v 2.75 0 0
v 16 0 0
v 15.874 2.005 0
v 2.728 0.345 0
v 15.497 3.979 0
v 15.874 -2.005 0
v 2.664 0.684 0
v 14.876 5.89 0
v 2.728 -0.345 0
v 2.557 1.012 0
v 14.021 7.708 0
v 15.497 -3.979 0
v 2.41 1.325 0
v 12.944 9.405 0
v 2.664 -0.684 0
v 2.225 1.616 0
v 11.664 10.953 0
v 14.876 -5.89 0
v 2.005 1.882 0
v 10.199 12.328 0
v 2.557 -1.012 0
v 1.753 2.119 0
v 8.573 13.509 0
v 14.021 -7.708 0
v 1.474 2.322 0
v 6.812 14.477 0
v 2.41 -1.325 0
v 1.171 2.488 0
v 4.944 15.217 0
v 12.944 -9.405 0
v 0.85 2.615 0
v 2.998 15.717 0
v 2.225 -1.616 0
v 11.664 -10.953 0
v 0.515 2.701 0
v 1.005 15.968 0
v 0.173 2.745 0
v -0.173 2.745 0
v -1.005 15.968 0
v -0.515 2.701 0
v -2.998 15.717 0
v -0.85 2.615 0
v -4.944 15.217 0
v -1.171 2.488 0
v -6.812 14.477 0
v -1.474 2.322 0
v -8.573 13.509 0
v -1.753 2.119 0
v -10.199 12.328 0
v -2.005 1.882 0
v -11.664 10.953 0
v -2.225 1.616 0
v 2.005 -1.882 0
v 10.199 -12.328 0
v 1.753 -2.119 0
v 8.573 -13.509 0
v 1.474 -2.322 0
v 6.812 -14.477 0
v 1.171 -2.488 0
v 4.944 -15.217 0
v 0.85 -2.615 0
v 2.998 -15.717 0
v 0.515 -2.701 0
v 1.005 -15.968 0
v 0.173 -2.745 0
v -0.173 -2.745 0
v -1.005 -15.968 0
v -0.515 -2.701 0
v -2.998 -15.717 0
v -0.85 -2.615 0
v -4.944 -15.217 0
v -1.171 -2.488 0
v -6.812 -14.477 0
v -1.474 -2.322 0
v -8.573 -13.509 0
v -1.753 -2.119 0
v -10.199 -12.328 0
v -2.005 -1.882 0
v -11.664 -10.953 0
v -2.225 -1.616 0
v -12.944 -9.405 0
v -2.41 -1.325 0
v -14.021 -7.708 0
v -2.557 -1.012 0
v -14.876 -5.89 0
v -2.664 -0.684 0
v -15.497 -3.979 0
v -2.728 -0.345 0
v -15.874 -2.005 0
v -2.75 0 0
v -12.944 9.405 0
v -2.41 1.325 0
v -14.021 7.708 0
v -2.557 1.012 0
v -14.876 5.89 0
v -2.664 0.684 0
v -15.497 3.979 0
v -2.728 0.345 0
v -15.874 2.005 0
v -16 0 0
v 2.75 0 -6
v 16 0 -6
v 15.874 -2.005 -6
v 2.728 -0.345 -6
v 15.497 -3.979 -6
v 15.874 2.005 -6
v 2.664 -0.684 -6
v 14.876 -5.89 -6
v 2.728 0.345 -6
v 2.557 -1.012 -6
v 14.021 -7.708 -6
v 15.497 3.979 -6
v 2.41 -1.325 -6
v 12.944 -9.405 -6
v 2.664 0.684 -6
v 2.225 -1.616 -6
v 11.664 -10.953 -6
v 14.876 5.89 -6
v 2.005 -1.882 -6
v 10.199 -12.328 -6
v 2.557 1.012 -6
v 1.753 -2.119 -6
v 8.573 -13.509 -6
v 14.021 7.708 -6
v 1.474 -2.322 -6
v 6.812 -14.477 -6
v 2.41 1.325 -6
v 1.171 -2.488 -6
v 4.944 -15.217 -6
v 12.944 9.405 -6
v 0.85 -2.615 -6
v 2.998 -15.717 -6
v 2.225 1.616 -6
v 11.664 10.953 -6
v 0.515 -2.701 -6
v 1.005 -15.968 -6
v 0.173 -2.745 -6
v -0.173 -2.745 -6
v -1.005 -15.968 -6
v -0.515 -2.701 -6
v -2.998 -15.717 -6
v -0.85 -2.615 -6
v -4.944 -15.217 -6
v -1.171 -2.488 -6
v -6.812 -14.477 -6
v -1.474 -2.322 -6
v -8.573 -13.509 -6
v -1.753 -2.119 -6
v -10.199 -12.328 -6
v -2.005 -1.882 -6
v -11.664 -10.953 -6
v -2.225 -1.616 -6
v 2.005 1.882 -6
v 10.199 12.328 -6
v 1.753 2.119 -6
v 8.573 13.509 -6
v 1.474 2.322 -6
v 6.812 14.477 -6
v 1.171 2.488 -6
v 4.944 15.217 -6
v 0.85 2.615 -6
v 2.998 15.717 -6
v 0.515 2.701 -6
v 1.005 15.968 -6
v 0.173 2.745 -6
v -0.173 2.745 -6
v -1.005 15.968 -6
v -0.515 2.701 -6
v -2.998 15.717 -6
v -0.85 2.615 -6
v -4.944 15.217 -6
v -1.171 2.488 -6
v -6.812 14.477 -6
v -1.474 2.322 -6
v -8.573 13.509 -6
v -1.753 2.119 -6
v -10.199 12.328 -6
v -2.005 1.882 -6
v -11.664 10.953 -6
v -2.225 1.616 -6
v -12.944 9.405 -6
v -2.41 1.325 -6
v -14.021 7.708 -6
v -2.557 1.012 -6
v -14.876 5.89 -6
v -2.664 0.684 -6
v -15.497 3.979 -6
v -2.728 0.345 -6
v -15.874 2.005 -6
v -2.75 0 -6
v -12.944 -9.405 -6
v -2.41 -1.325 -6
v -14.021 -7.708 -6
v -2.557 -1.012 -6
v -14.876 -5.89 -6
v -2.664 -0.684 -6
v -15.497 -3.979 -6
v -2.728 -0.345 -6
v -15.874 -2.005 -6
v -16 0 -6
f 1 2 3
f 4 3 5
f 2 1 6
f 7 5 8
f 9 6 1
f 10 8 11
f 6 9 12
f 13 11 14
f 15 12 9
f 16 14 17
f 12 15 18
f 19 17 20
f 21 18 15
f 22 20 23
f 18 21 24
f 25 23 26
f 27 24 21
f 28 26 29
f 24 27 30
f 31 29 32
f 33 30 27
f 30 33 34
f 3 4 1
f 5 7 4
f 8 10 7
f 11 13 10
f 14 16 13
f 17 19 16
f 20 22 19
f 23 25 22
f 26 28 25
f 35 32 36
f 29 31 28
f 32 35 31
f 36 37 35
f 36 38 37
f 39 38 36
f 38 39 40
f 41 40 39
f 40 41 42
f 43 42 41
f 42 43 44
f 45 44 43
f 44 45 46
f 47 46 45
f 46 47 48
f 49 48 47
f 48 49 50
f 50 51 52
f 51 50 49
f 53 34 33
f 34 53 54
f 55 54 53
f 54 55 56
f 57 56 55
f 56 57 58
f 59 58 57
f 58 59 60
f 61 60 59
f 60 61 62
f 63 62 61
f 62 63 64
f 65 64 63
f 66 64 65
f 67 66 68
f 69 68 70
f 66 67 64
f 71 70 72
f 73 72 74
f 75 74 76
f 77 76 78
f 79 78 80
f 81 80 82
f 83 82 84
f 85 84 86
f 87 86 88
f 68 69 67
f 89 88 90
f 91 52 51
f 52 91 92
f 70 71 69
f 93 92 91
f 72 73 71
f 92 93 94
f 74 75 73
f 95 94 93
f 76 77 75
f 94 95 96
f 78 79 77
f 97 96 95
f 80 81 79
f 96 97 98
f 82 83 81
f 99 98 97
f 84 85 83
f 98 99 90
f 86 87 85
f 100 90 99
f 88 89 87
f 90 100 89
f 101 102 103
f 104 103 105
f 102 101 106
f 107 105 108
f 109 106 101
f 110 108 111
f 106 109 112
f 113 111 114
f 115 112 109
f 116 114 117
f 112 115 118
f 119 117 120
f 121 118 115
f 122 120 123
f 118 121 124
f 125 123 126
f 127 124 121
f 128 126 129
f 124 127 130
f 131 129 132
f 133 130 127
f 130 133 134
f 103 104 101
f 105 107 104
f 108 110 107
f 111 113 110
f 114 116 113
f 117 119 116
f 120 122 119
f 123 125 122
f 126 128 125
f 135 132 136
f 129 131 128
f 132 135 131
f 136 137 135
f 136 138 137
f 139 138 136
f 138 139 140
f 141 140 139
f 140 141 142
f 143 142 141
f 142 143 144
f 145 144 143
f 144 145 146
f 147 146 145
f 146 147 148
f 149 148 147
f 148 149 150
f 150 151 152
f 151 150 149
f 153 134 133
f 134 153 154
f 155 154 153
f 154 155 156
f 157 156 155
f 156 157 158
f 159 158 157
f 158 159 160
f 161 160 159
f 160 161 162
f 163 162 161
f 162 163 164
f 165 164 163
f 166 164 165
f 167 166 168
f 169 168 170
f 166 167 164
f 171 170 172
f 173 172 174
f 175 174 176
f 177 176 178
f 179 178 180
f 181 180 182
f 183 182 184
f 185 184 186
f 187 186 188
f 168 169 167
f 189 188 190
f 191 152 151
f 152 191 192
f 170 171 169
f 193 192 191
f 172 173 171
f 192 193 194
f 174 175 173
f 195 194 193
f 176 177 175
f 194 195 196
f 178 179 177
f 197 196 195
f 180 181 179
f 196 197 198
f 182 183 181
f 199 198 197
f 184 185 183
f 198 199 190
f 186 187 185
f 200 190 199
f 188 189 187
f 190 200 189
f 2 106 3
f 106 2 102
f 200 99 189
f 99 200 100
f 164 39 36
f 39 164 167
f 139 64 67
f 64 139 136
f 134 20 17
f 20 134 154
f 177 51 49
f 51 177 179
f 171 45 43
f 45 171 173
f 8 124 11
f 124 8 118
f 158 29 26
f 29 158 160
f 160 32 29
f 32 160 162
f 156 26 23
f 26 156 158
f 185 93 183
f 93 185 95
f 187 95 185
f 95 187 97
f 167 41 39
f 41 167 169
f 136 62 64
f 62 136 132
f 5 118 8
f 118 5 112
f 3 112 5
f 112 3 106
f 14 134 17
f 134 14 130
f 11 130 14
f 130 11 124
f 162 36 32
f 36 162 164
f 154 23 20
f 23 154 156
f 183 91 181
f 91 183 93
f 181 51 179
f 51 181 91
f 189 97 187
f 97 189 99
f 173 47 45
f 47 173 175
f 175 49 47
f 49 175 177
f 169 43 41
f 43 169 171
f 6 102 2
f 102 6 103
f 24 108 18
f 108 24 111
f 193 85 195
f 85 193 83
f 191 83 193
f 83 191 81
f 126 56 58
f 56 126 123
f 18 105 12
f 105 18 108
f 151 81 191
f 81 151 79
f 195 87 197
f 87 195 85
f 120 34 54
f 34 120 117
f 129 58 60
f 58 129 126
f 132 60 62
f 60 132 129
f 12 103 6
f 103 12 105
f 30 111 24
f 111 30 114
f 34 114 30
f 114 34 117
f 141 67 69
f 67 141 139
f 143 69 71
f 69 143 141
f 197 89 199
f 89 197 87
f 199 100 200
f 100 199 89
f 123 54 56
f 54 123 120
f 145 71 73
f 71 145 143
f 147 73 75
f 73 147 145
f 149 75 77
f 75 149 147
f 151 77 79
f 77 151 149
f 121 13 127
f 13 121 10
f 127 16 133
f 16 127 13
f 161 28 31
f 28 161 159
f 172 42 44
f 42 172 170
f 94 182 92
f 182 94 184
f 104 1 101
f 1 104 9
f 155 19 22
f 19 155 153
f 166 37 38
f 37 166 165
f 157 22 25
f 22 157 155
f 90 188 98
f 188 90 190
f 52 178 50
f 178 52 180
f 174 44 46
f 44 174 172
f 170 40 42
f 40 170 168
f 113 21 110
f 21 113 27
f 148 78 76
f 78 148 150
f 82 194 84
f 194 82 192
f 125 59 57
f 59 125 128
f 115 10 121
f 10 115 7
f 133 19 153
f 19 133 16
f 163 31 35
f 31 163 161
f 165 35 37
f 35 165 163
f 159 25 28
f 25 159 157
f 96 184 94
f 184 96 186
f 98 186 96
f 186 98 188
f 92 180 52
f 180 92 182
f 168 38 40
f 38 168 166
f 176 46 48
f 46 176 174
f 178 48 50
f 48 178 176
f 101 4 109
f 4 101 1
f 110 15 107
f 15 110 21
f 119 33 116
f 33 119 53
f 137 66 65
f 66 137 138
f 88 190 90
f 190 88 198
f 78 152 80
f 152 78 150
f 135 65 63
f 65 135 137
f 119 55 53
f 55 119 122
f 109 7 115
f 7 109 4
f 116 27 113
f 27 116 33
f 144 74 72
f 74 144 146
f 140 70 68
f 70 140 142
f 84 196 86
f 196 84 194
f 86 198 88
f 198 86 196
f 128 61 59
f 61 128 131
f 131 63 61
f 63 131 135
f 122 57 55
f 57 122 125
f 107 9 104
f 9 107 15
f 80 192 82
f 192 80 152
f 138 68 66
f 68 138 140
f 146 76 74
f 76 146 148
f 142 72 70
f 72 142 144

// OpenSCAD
$fn = 50;


difference() {
	union() {
		translate(v = [0, 0, -6.0000000000]) {
			cylinder(h = 6, r = 7.0000000000);
		}
		translate(v = [0, 0, -6.0000000000]) {
			cylinder(h = 6, r = 16.0000000000);
		}
	}
	union() {
		#translate(v = [0, 0, -6]) {
			cylinder(h = 6, r = 2.7500000000);
		}
	}
}
